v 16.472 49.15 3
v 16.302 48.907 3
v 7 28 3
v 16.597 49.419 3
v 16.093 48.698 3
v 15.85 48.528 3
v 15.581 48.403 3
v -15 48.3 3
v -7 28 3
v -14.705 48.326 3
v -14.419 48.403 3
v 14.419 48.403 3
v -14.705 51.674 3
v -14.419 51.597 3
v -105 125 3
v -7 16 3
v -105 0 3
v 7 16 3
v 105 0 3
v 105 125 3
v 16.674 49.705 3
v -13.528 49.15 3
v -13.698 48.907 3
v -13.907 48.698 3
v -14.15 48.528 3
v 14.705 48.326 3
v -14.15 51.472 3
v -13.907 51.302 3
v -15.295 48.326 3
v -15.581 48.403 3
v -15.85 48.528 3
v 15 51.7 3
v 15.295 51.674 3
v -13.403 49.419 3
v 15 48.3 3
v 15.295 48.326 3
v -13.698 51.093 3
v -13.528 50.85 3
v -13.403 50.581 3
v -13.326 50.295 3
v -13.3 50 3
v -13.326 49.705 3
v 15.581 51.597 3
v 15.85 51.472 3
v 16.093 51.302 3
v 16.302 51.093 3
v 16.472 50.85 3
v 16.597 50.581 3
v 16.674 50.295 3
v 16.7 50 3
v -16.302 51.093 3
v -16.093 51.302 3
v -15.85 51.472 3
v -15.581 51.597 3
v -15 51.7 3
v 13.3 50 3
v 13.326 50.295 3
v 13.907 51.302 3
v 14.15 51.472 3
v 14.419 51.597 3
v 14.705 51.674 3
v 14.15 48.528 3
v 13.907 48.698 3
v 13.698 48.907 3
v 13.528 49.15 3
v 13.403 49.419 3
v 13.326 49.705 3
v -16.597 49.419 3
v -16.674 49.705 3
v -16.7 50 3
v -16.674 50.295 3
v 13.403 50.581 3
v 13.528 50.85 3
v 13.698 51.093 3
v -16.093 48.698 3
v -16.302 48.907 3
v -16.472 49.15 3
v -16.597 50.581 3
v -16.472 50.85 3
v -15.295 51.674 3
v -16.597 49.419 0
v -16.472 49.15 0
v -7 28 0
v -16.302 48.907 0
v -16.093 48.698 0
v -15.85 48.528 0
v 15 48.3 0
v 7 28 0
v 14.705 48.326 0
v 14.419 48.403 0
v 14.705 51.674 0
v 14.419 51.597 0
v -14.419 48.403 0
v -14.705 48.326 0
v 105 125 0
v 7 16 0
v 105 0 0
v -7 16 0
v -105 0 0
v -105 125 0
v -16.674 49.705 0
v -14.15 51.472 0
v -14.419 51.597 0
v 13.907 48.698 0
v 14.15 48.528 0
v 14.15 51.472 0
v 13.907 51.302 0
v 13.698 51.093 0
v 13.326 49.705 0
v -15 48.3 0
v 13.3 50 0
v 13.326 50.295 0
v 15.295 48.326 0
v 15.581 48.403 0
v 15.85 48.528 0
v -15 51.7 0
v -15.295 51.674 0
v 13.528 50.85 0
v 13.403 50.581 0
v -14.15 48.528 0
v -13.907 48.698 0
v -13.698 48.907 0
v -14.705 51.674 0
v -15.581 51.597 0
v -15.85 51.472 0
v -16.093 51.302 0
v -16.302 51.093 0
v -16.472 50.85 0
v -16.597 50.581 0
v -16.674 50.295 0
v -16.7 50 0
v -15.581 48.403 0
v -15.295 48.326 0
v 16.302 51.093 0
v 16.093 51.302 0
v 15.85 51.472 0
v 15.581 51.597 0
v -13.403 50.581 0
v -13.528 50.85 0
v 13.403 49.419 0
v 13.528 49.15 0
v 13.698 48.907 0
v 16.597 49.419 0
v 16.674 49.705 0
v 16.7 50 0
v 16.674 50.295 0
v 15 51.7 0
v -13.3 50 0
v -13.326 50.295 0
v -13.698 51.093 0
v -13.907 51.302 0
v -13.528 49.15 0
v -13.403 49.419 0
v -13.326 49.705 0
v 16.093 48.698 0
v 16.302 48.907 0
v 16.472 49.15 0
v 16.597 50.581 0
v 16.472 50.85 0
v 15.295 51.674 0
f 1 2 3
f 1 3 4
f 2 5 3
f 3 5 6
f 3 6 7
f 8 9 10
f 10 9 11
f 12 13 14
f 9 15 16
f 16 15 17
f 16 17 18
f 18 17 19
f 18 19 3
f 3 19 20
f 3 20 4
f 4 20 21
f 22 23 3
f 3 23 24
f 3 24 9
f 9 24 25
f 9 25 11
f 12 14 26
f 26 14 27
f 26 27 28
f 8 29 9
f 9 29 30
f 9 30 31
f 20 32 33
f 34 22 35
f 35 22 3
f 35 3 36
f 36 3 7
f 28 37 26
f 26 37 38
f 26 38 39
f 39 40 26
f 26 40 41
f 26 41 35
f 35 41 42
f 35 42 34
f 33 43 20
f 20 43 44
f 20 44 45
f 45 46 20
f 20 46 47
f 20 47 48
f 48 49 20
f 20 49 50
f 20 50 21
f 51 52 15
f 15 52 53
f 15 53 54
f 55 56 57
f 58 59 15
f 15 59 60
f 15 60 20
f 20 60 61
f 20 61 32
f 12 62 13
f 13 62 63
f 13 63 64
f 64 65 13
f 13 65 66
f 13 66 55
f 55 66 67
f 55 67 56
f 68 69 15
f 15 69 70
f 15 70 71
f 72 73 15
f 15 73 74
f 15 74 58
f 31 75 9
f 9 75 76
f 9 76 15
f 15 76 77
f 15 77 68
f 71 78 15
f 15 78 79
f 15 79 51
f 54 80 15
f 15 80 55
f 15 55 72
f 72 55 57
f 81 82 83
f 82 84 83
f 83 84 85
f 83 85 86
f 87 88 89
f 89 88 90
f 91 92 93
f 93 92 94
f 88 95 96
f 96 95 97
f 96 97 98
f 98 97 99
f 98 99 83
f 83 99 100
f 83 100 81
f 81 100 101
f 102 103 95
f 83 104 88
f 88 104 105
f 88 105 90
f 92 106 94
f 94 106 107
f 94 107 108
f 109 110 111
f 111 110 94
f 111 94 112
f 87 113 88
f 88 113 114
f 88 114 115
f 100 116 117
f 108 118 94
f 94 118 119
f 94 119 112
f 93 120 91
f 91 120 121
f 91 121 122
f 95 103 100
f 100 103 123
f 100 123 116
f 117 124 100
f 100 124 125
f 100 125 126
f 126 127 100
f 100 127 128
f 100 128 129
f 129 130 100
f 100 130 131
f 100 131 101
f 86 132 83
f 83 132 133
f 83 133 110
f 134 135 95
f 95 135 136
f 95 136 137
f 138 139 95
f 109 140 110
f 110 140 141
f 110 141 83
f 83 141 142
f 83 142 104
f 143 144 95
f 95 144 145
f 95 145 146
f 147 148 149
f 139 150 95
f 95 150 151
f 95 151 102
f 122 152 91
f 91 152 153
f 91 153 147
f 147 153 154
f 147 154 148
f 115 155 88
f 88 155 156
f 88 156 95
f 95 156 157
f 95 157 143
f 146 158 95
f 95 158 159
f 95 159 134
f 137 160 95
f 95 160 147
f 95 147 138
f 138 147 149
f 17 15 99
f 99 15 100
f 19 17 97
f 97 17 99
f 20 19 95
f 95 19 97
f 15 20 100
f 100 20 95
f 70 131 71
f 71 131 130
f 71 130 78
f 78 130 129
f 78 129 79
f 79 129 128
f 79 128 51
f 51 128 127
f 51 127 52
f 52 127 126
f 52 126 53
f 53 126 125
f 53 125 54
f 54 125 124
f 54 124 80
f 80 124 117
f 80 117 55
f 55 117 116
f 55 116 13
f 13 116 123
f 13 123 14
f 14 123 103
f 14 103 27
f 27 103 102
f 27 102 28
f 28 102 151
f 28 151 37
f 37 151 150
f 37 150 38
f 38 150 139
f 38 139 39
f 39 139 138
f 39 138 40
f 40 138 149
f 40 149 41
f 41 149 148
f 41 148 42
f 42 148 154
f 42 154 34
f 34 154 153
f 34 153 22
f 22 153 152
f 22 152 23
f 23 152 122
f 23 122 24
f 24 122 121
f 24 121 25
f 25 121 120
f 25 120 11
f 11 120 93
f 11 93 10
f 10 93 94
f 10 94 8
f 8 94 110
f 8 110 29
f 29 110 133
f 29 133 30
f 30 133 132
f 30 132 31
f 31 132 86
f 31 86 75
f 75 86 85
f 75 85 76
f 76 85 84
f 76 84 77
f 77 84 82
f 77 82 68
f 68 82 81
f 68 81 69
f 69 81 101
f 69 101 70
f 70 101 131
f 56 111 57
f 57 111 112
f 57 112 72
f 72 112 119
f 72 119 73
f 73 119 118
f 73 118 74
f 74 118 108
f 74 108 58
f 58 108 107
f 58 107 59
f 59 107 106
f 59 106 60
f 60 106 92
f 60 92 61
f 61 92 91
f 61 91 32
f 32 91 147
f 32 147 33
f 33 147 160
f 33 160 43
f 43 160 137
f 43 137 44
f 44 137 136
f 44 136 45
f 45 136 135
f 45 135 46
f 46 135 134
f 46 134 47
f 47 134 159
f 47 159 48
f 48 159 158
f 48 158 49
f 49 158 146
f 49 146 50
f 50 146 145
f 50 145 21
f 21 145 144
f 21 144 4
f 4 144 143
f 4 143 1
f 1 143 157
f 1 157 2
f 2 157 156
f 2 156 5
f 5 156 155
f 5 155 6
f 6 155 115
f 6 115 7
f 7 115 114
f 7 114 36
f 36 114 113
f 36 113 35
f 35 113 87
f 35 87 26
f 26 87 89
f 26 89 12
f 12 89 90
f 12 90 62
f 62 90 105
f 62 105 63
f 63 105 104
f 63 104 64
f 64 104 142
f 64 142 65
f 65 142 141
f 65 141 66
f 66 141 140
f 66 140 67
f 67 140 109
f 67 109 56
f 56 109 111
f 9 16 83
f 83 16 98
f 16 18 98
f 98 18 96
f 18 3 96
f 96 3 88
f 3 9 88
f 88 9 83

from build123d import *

# Parameters (mm, degrees)
SK_PLATE_W            = 210
SK_PLATE_H            = 125
EX_PLATE_DEPTH        = 3
SK_WEDGESCREWS_R      = 1.7
CUT_WEDGESCREWS_DEPTH = 3
SK_USB_SLOT_W         = 14
SK_USB_SLOT_H         = 12
CUT_USB_SLOT_DEPTH    = 3


with BuildPart() as part:
    # SK_Plate → EX_Plate (new body)
    with BuildSketch(Plane.XY):
        with Locations((0, 62.5)):
            Rectangle(SK_PLATE_W, SK_PLATE_H)
    extrude(amount=EX_PLATE_DEPTH)

    # SK_WedgeScrews → CUT_WedgeScrews (cut)
    with BuildSketch(Plane.XY):
        with Locations((15, 50)):
            Circle(SK_WEDGESCREWS_R)
        with Locations((-15, 50)):
            Circle(SK_WEDGESCREWS_R)
    extrude(amount=CUT_WEDGESCREWS_DEPTH, mode=Mode.SUBTRACT)

    # SK_USB_Slot → CUT_USB_Slot (cut)
    with BuildSketch(Plane.XY):
        with Locations((0, 22)):
            Rectangle(SK_USB_SLOT_W, SK_USB_SLOT_H)
    extrude(amount=CUT_USB_SLOT_DEPTH, mode=Mode.SUBTRACT)


solid = part.part
